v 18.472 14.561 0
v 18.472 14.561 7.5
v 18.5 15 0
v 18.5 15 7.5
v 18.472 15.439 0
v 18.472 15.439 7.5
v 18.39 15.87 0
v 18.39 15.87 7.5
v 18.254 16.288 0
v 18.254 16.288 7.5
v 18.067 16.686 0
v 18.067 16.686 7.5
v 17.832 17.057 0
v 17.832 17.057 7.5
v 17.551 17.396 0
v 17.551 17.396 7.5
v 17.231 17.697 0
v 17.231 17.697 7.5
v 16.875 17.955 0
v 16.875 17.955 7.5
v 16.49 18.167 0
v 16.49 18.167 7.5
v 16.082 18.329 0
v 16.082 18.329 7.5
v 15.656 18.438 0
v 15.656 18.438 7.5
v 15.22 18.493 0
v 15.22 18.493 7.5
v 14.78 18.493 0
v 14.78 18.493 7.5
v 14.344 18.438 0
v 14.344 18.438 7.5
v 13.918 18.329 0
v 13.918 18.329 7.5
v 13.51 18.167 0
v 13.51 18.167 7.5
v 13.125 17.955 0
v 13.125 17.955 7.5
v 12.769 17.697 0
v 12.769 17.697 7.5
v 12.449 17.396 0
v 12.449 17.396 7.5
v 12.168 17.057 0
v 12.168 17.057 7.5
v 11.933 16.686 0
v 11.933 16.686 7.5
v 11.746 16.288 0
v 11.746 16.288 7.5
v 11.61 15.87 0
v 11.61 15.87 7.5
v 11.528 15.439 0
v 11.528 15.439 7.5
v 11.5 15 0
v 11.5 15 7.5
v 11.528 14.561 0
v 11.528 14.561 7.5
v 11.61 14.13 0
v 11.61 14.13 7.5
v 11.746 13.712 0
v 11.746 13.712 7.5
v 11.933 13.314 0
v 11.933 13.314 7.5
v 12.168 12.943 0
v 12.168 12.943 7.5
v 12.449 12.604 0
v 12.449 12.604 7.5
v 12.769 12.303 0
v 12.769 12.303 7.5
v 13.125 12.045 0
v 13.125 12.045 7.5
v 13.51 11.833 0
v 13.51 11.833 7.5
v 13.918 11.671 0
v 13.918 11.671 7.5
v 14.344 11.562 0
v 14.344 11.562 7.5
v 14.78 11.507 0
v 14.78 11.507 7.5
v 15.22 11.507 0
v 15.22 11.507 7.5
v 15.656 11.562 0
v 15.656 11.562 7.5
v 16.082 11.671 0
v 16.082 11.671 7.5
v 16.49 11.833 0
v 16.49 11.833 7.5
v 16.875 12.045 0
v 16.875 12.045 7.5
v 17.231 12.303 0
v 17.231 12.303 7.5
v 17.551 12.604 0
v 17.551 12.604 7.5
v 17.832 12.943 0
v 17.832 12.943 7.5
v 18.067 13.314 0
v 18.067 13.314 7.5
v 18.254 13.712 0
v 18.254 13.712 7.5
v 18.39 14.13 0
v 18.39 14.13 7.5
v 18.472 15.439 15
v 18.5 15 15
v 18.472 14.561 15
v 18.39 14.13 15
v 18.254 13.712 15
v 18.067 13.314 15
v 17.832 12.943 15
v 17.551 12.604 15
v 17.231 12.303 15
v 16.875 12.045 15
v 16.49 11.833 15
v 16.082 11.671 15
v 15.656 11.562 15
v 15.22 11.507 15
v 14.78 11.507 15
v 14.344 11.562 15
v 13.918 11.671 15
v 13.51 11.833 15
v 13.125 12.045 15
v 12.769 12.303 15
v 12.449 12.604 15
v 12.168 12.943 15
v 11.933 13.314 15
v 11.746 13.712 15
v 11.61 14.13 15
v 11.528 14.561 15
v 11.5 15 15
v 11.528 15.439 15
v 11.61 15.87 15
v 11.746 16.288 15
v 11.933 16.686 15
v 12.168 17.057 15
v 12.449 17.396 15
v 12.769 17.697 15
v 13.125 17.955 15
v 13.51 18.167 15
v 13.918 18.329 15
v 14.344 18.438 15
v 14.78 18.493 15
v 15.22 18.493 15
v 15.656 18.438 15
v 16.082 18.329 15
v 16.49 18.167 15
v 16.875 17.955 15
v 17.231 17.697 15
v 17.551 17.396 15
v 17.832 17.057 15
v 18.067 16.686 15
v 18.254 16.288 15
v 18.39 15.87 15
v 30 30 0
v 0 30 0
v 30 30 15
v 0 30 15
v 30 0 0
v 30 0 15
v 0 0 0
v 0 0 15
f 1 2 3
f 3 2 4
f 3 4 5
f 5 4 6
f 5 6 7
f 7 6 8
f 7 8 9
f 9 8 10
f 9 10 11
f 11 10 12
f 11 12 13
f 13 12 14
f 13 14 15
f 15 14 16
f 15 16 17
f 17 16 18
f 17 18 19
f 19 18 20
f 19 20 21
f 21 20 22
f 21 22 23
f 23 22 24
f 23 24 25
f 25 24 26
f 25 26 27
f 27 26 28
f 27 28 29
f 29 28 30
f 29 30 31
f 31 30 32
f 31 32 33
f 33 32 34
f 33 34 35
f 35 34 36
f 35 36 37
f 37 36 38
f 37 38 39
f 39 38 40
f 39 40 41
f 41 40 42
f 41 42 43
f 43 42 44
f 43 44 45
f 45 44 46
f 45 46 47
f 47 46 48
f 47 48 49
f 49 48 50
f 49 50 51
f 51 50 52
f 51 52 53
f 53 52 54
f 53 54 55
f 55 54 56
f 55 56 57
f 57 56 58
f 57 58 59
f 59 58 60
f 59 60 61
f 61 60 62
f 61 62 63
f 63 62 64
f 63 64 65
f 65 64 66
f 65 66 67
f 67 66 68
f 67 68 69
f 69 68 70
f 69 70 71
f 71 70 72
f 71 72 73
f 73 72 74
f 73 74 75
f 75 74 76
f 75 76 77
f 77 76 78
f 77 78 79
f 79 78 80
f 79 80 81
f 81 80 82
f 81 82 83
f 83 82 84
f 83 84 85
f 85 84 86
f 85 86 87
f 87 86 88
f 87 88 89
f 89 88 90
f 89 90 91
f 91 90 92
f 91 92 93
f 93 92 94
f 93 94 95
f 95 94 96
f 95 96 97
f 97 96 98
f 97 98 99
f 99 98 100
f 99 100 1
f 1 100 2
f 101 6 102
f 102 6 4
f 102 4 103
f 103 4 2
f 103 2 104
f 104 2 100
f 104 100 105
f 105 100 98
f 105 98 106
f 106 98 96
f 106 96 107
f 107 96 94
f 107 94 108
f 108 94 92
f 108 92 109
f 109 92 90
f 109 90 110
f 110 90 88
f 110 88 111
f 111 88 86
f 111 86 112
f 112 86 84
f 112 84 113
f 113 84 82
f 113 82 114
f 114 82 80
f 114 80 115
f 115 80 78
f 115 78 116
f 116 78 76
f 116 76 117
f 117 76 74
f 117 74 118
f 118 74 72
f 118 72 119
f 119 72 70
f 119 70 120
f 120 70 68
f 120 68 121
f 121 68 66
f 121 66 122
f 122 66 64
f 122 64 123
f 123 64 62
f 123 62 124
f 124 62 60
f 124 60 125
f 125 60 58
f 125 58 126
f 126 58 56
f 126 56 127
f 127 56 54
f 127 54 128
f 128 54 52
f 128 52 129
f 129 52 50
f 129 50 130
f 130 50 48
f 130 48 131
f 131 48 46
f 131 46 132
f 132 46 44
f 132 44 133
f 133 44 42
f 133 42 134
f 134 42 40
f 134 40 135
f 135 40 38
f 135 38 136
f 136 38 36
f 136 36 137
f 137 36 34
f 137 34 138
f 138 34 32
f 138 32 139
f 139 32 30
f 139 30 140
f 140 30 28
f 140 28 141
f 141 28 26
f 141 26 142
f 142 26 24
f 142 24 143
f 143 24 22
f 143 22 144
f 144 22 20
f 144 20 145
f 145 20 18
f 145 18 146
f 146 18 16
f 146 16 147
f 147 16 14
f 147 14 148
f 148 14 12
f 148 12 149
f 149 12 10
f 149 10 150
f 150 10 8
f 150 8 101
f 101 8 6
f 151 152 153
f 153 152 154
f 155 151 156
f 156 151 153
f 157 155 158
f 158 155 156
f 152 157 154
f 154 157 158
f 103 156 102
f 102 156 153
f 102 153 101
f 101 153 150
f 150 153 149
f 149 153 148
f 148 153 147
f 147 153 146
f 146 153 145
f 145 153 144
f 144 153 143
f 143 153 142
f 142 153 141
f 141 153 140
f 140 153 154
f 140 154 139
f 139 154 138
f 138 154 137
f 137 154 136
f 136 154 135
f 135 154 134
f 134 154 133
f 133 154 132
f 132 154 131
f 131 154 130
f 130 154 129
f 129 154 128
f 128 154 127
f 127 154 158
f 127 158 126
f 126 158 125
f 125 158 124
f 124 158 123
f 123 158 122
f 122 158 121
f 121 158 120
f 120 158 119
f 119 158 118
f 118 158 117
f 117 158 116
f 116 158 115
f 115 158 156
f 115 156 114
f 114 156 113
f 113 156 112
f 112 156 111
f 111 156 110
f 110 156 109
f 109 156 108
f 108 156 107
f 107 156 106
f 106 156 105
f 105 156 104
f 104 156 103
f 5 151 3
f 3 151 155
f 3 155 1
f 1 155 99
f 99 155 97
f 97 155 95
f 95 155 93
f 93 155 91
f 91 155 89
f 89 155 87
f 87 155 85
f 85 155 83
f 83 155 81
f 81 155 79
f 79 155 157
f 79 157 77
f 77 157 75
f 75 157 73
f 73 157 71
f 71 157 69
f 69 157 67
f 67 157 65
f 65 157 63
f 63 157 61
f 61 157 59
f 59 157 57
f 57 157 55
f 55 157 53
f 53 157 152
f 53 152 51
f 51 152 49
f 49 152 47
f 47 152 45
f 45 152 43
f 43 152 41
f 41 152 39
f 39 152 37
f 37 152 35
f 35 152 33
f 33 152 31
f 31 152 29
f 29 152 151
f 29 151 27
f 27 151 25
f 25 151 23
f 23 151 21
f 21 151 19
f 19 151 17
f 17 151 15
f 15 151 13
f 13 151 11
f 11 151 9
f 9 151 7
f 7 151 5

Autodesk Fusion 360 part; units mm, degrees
sketch "Skizze1" plane through (0, 0, 0) normal (0, 0, 1) x (1, 0, 0)
  line L0 (0, 0) -> (30, 0)
  line L1 (30, 0) -> (30, 30)
  line L2 (30, 30) -> (0, 30)
  line L3 (0, 30) -> (0, 0)
  dimension "d1" = 30
  dimension "d2" = 30
extrude "Extrusion1" add sketch "Skizze1" along normal blind 15
sketch "Skizze2" plane through (0, 0, 15) normal (0, 0, 1) x (-1, 0, 0)
  line L0 (0, -30) -> (0, 0)
  line L1 (0, 0) -> (-30, 0)
  line L2 (-30, 0) -> (-30, -30)
  line L3 (-30, -30) -> (0, -30)
  circle A0 centre (-15, -15) radius 3.5
  dimension "d5" = 7
extrude "Extrusion2" cut sketch "Skizze2" against normal blind 15 contours A0
